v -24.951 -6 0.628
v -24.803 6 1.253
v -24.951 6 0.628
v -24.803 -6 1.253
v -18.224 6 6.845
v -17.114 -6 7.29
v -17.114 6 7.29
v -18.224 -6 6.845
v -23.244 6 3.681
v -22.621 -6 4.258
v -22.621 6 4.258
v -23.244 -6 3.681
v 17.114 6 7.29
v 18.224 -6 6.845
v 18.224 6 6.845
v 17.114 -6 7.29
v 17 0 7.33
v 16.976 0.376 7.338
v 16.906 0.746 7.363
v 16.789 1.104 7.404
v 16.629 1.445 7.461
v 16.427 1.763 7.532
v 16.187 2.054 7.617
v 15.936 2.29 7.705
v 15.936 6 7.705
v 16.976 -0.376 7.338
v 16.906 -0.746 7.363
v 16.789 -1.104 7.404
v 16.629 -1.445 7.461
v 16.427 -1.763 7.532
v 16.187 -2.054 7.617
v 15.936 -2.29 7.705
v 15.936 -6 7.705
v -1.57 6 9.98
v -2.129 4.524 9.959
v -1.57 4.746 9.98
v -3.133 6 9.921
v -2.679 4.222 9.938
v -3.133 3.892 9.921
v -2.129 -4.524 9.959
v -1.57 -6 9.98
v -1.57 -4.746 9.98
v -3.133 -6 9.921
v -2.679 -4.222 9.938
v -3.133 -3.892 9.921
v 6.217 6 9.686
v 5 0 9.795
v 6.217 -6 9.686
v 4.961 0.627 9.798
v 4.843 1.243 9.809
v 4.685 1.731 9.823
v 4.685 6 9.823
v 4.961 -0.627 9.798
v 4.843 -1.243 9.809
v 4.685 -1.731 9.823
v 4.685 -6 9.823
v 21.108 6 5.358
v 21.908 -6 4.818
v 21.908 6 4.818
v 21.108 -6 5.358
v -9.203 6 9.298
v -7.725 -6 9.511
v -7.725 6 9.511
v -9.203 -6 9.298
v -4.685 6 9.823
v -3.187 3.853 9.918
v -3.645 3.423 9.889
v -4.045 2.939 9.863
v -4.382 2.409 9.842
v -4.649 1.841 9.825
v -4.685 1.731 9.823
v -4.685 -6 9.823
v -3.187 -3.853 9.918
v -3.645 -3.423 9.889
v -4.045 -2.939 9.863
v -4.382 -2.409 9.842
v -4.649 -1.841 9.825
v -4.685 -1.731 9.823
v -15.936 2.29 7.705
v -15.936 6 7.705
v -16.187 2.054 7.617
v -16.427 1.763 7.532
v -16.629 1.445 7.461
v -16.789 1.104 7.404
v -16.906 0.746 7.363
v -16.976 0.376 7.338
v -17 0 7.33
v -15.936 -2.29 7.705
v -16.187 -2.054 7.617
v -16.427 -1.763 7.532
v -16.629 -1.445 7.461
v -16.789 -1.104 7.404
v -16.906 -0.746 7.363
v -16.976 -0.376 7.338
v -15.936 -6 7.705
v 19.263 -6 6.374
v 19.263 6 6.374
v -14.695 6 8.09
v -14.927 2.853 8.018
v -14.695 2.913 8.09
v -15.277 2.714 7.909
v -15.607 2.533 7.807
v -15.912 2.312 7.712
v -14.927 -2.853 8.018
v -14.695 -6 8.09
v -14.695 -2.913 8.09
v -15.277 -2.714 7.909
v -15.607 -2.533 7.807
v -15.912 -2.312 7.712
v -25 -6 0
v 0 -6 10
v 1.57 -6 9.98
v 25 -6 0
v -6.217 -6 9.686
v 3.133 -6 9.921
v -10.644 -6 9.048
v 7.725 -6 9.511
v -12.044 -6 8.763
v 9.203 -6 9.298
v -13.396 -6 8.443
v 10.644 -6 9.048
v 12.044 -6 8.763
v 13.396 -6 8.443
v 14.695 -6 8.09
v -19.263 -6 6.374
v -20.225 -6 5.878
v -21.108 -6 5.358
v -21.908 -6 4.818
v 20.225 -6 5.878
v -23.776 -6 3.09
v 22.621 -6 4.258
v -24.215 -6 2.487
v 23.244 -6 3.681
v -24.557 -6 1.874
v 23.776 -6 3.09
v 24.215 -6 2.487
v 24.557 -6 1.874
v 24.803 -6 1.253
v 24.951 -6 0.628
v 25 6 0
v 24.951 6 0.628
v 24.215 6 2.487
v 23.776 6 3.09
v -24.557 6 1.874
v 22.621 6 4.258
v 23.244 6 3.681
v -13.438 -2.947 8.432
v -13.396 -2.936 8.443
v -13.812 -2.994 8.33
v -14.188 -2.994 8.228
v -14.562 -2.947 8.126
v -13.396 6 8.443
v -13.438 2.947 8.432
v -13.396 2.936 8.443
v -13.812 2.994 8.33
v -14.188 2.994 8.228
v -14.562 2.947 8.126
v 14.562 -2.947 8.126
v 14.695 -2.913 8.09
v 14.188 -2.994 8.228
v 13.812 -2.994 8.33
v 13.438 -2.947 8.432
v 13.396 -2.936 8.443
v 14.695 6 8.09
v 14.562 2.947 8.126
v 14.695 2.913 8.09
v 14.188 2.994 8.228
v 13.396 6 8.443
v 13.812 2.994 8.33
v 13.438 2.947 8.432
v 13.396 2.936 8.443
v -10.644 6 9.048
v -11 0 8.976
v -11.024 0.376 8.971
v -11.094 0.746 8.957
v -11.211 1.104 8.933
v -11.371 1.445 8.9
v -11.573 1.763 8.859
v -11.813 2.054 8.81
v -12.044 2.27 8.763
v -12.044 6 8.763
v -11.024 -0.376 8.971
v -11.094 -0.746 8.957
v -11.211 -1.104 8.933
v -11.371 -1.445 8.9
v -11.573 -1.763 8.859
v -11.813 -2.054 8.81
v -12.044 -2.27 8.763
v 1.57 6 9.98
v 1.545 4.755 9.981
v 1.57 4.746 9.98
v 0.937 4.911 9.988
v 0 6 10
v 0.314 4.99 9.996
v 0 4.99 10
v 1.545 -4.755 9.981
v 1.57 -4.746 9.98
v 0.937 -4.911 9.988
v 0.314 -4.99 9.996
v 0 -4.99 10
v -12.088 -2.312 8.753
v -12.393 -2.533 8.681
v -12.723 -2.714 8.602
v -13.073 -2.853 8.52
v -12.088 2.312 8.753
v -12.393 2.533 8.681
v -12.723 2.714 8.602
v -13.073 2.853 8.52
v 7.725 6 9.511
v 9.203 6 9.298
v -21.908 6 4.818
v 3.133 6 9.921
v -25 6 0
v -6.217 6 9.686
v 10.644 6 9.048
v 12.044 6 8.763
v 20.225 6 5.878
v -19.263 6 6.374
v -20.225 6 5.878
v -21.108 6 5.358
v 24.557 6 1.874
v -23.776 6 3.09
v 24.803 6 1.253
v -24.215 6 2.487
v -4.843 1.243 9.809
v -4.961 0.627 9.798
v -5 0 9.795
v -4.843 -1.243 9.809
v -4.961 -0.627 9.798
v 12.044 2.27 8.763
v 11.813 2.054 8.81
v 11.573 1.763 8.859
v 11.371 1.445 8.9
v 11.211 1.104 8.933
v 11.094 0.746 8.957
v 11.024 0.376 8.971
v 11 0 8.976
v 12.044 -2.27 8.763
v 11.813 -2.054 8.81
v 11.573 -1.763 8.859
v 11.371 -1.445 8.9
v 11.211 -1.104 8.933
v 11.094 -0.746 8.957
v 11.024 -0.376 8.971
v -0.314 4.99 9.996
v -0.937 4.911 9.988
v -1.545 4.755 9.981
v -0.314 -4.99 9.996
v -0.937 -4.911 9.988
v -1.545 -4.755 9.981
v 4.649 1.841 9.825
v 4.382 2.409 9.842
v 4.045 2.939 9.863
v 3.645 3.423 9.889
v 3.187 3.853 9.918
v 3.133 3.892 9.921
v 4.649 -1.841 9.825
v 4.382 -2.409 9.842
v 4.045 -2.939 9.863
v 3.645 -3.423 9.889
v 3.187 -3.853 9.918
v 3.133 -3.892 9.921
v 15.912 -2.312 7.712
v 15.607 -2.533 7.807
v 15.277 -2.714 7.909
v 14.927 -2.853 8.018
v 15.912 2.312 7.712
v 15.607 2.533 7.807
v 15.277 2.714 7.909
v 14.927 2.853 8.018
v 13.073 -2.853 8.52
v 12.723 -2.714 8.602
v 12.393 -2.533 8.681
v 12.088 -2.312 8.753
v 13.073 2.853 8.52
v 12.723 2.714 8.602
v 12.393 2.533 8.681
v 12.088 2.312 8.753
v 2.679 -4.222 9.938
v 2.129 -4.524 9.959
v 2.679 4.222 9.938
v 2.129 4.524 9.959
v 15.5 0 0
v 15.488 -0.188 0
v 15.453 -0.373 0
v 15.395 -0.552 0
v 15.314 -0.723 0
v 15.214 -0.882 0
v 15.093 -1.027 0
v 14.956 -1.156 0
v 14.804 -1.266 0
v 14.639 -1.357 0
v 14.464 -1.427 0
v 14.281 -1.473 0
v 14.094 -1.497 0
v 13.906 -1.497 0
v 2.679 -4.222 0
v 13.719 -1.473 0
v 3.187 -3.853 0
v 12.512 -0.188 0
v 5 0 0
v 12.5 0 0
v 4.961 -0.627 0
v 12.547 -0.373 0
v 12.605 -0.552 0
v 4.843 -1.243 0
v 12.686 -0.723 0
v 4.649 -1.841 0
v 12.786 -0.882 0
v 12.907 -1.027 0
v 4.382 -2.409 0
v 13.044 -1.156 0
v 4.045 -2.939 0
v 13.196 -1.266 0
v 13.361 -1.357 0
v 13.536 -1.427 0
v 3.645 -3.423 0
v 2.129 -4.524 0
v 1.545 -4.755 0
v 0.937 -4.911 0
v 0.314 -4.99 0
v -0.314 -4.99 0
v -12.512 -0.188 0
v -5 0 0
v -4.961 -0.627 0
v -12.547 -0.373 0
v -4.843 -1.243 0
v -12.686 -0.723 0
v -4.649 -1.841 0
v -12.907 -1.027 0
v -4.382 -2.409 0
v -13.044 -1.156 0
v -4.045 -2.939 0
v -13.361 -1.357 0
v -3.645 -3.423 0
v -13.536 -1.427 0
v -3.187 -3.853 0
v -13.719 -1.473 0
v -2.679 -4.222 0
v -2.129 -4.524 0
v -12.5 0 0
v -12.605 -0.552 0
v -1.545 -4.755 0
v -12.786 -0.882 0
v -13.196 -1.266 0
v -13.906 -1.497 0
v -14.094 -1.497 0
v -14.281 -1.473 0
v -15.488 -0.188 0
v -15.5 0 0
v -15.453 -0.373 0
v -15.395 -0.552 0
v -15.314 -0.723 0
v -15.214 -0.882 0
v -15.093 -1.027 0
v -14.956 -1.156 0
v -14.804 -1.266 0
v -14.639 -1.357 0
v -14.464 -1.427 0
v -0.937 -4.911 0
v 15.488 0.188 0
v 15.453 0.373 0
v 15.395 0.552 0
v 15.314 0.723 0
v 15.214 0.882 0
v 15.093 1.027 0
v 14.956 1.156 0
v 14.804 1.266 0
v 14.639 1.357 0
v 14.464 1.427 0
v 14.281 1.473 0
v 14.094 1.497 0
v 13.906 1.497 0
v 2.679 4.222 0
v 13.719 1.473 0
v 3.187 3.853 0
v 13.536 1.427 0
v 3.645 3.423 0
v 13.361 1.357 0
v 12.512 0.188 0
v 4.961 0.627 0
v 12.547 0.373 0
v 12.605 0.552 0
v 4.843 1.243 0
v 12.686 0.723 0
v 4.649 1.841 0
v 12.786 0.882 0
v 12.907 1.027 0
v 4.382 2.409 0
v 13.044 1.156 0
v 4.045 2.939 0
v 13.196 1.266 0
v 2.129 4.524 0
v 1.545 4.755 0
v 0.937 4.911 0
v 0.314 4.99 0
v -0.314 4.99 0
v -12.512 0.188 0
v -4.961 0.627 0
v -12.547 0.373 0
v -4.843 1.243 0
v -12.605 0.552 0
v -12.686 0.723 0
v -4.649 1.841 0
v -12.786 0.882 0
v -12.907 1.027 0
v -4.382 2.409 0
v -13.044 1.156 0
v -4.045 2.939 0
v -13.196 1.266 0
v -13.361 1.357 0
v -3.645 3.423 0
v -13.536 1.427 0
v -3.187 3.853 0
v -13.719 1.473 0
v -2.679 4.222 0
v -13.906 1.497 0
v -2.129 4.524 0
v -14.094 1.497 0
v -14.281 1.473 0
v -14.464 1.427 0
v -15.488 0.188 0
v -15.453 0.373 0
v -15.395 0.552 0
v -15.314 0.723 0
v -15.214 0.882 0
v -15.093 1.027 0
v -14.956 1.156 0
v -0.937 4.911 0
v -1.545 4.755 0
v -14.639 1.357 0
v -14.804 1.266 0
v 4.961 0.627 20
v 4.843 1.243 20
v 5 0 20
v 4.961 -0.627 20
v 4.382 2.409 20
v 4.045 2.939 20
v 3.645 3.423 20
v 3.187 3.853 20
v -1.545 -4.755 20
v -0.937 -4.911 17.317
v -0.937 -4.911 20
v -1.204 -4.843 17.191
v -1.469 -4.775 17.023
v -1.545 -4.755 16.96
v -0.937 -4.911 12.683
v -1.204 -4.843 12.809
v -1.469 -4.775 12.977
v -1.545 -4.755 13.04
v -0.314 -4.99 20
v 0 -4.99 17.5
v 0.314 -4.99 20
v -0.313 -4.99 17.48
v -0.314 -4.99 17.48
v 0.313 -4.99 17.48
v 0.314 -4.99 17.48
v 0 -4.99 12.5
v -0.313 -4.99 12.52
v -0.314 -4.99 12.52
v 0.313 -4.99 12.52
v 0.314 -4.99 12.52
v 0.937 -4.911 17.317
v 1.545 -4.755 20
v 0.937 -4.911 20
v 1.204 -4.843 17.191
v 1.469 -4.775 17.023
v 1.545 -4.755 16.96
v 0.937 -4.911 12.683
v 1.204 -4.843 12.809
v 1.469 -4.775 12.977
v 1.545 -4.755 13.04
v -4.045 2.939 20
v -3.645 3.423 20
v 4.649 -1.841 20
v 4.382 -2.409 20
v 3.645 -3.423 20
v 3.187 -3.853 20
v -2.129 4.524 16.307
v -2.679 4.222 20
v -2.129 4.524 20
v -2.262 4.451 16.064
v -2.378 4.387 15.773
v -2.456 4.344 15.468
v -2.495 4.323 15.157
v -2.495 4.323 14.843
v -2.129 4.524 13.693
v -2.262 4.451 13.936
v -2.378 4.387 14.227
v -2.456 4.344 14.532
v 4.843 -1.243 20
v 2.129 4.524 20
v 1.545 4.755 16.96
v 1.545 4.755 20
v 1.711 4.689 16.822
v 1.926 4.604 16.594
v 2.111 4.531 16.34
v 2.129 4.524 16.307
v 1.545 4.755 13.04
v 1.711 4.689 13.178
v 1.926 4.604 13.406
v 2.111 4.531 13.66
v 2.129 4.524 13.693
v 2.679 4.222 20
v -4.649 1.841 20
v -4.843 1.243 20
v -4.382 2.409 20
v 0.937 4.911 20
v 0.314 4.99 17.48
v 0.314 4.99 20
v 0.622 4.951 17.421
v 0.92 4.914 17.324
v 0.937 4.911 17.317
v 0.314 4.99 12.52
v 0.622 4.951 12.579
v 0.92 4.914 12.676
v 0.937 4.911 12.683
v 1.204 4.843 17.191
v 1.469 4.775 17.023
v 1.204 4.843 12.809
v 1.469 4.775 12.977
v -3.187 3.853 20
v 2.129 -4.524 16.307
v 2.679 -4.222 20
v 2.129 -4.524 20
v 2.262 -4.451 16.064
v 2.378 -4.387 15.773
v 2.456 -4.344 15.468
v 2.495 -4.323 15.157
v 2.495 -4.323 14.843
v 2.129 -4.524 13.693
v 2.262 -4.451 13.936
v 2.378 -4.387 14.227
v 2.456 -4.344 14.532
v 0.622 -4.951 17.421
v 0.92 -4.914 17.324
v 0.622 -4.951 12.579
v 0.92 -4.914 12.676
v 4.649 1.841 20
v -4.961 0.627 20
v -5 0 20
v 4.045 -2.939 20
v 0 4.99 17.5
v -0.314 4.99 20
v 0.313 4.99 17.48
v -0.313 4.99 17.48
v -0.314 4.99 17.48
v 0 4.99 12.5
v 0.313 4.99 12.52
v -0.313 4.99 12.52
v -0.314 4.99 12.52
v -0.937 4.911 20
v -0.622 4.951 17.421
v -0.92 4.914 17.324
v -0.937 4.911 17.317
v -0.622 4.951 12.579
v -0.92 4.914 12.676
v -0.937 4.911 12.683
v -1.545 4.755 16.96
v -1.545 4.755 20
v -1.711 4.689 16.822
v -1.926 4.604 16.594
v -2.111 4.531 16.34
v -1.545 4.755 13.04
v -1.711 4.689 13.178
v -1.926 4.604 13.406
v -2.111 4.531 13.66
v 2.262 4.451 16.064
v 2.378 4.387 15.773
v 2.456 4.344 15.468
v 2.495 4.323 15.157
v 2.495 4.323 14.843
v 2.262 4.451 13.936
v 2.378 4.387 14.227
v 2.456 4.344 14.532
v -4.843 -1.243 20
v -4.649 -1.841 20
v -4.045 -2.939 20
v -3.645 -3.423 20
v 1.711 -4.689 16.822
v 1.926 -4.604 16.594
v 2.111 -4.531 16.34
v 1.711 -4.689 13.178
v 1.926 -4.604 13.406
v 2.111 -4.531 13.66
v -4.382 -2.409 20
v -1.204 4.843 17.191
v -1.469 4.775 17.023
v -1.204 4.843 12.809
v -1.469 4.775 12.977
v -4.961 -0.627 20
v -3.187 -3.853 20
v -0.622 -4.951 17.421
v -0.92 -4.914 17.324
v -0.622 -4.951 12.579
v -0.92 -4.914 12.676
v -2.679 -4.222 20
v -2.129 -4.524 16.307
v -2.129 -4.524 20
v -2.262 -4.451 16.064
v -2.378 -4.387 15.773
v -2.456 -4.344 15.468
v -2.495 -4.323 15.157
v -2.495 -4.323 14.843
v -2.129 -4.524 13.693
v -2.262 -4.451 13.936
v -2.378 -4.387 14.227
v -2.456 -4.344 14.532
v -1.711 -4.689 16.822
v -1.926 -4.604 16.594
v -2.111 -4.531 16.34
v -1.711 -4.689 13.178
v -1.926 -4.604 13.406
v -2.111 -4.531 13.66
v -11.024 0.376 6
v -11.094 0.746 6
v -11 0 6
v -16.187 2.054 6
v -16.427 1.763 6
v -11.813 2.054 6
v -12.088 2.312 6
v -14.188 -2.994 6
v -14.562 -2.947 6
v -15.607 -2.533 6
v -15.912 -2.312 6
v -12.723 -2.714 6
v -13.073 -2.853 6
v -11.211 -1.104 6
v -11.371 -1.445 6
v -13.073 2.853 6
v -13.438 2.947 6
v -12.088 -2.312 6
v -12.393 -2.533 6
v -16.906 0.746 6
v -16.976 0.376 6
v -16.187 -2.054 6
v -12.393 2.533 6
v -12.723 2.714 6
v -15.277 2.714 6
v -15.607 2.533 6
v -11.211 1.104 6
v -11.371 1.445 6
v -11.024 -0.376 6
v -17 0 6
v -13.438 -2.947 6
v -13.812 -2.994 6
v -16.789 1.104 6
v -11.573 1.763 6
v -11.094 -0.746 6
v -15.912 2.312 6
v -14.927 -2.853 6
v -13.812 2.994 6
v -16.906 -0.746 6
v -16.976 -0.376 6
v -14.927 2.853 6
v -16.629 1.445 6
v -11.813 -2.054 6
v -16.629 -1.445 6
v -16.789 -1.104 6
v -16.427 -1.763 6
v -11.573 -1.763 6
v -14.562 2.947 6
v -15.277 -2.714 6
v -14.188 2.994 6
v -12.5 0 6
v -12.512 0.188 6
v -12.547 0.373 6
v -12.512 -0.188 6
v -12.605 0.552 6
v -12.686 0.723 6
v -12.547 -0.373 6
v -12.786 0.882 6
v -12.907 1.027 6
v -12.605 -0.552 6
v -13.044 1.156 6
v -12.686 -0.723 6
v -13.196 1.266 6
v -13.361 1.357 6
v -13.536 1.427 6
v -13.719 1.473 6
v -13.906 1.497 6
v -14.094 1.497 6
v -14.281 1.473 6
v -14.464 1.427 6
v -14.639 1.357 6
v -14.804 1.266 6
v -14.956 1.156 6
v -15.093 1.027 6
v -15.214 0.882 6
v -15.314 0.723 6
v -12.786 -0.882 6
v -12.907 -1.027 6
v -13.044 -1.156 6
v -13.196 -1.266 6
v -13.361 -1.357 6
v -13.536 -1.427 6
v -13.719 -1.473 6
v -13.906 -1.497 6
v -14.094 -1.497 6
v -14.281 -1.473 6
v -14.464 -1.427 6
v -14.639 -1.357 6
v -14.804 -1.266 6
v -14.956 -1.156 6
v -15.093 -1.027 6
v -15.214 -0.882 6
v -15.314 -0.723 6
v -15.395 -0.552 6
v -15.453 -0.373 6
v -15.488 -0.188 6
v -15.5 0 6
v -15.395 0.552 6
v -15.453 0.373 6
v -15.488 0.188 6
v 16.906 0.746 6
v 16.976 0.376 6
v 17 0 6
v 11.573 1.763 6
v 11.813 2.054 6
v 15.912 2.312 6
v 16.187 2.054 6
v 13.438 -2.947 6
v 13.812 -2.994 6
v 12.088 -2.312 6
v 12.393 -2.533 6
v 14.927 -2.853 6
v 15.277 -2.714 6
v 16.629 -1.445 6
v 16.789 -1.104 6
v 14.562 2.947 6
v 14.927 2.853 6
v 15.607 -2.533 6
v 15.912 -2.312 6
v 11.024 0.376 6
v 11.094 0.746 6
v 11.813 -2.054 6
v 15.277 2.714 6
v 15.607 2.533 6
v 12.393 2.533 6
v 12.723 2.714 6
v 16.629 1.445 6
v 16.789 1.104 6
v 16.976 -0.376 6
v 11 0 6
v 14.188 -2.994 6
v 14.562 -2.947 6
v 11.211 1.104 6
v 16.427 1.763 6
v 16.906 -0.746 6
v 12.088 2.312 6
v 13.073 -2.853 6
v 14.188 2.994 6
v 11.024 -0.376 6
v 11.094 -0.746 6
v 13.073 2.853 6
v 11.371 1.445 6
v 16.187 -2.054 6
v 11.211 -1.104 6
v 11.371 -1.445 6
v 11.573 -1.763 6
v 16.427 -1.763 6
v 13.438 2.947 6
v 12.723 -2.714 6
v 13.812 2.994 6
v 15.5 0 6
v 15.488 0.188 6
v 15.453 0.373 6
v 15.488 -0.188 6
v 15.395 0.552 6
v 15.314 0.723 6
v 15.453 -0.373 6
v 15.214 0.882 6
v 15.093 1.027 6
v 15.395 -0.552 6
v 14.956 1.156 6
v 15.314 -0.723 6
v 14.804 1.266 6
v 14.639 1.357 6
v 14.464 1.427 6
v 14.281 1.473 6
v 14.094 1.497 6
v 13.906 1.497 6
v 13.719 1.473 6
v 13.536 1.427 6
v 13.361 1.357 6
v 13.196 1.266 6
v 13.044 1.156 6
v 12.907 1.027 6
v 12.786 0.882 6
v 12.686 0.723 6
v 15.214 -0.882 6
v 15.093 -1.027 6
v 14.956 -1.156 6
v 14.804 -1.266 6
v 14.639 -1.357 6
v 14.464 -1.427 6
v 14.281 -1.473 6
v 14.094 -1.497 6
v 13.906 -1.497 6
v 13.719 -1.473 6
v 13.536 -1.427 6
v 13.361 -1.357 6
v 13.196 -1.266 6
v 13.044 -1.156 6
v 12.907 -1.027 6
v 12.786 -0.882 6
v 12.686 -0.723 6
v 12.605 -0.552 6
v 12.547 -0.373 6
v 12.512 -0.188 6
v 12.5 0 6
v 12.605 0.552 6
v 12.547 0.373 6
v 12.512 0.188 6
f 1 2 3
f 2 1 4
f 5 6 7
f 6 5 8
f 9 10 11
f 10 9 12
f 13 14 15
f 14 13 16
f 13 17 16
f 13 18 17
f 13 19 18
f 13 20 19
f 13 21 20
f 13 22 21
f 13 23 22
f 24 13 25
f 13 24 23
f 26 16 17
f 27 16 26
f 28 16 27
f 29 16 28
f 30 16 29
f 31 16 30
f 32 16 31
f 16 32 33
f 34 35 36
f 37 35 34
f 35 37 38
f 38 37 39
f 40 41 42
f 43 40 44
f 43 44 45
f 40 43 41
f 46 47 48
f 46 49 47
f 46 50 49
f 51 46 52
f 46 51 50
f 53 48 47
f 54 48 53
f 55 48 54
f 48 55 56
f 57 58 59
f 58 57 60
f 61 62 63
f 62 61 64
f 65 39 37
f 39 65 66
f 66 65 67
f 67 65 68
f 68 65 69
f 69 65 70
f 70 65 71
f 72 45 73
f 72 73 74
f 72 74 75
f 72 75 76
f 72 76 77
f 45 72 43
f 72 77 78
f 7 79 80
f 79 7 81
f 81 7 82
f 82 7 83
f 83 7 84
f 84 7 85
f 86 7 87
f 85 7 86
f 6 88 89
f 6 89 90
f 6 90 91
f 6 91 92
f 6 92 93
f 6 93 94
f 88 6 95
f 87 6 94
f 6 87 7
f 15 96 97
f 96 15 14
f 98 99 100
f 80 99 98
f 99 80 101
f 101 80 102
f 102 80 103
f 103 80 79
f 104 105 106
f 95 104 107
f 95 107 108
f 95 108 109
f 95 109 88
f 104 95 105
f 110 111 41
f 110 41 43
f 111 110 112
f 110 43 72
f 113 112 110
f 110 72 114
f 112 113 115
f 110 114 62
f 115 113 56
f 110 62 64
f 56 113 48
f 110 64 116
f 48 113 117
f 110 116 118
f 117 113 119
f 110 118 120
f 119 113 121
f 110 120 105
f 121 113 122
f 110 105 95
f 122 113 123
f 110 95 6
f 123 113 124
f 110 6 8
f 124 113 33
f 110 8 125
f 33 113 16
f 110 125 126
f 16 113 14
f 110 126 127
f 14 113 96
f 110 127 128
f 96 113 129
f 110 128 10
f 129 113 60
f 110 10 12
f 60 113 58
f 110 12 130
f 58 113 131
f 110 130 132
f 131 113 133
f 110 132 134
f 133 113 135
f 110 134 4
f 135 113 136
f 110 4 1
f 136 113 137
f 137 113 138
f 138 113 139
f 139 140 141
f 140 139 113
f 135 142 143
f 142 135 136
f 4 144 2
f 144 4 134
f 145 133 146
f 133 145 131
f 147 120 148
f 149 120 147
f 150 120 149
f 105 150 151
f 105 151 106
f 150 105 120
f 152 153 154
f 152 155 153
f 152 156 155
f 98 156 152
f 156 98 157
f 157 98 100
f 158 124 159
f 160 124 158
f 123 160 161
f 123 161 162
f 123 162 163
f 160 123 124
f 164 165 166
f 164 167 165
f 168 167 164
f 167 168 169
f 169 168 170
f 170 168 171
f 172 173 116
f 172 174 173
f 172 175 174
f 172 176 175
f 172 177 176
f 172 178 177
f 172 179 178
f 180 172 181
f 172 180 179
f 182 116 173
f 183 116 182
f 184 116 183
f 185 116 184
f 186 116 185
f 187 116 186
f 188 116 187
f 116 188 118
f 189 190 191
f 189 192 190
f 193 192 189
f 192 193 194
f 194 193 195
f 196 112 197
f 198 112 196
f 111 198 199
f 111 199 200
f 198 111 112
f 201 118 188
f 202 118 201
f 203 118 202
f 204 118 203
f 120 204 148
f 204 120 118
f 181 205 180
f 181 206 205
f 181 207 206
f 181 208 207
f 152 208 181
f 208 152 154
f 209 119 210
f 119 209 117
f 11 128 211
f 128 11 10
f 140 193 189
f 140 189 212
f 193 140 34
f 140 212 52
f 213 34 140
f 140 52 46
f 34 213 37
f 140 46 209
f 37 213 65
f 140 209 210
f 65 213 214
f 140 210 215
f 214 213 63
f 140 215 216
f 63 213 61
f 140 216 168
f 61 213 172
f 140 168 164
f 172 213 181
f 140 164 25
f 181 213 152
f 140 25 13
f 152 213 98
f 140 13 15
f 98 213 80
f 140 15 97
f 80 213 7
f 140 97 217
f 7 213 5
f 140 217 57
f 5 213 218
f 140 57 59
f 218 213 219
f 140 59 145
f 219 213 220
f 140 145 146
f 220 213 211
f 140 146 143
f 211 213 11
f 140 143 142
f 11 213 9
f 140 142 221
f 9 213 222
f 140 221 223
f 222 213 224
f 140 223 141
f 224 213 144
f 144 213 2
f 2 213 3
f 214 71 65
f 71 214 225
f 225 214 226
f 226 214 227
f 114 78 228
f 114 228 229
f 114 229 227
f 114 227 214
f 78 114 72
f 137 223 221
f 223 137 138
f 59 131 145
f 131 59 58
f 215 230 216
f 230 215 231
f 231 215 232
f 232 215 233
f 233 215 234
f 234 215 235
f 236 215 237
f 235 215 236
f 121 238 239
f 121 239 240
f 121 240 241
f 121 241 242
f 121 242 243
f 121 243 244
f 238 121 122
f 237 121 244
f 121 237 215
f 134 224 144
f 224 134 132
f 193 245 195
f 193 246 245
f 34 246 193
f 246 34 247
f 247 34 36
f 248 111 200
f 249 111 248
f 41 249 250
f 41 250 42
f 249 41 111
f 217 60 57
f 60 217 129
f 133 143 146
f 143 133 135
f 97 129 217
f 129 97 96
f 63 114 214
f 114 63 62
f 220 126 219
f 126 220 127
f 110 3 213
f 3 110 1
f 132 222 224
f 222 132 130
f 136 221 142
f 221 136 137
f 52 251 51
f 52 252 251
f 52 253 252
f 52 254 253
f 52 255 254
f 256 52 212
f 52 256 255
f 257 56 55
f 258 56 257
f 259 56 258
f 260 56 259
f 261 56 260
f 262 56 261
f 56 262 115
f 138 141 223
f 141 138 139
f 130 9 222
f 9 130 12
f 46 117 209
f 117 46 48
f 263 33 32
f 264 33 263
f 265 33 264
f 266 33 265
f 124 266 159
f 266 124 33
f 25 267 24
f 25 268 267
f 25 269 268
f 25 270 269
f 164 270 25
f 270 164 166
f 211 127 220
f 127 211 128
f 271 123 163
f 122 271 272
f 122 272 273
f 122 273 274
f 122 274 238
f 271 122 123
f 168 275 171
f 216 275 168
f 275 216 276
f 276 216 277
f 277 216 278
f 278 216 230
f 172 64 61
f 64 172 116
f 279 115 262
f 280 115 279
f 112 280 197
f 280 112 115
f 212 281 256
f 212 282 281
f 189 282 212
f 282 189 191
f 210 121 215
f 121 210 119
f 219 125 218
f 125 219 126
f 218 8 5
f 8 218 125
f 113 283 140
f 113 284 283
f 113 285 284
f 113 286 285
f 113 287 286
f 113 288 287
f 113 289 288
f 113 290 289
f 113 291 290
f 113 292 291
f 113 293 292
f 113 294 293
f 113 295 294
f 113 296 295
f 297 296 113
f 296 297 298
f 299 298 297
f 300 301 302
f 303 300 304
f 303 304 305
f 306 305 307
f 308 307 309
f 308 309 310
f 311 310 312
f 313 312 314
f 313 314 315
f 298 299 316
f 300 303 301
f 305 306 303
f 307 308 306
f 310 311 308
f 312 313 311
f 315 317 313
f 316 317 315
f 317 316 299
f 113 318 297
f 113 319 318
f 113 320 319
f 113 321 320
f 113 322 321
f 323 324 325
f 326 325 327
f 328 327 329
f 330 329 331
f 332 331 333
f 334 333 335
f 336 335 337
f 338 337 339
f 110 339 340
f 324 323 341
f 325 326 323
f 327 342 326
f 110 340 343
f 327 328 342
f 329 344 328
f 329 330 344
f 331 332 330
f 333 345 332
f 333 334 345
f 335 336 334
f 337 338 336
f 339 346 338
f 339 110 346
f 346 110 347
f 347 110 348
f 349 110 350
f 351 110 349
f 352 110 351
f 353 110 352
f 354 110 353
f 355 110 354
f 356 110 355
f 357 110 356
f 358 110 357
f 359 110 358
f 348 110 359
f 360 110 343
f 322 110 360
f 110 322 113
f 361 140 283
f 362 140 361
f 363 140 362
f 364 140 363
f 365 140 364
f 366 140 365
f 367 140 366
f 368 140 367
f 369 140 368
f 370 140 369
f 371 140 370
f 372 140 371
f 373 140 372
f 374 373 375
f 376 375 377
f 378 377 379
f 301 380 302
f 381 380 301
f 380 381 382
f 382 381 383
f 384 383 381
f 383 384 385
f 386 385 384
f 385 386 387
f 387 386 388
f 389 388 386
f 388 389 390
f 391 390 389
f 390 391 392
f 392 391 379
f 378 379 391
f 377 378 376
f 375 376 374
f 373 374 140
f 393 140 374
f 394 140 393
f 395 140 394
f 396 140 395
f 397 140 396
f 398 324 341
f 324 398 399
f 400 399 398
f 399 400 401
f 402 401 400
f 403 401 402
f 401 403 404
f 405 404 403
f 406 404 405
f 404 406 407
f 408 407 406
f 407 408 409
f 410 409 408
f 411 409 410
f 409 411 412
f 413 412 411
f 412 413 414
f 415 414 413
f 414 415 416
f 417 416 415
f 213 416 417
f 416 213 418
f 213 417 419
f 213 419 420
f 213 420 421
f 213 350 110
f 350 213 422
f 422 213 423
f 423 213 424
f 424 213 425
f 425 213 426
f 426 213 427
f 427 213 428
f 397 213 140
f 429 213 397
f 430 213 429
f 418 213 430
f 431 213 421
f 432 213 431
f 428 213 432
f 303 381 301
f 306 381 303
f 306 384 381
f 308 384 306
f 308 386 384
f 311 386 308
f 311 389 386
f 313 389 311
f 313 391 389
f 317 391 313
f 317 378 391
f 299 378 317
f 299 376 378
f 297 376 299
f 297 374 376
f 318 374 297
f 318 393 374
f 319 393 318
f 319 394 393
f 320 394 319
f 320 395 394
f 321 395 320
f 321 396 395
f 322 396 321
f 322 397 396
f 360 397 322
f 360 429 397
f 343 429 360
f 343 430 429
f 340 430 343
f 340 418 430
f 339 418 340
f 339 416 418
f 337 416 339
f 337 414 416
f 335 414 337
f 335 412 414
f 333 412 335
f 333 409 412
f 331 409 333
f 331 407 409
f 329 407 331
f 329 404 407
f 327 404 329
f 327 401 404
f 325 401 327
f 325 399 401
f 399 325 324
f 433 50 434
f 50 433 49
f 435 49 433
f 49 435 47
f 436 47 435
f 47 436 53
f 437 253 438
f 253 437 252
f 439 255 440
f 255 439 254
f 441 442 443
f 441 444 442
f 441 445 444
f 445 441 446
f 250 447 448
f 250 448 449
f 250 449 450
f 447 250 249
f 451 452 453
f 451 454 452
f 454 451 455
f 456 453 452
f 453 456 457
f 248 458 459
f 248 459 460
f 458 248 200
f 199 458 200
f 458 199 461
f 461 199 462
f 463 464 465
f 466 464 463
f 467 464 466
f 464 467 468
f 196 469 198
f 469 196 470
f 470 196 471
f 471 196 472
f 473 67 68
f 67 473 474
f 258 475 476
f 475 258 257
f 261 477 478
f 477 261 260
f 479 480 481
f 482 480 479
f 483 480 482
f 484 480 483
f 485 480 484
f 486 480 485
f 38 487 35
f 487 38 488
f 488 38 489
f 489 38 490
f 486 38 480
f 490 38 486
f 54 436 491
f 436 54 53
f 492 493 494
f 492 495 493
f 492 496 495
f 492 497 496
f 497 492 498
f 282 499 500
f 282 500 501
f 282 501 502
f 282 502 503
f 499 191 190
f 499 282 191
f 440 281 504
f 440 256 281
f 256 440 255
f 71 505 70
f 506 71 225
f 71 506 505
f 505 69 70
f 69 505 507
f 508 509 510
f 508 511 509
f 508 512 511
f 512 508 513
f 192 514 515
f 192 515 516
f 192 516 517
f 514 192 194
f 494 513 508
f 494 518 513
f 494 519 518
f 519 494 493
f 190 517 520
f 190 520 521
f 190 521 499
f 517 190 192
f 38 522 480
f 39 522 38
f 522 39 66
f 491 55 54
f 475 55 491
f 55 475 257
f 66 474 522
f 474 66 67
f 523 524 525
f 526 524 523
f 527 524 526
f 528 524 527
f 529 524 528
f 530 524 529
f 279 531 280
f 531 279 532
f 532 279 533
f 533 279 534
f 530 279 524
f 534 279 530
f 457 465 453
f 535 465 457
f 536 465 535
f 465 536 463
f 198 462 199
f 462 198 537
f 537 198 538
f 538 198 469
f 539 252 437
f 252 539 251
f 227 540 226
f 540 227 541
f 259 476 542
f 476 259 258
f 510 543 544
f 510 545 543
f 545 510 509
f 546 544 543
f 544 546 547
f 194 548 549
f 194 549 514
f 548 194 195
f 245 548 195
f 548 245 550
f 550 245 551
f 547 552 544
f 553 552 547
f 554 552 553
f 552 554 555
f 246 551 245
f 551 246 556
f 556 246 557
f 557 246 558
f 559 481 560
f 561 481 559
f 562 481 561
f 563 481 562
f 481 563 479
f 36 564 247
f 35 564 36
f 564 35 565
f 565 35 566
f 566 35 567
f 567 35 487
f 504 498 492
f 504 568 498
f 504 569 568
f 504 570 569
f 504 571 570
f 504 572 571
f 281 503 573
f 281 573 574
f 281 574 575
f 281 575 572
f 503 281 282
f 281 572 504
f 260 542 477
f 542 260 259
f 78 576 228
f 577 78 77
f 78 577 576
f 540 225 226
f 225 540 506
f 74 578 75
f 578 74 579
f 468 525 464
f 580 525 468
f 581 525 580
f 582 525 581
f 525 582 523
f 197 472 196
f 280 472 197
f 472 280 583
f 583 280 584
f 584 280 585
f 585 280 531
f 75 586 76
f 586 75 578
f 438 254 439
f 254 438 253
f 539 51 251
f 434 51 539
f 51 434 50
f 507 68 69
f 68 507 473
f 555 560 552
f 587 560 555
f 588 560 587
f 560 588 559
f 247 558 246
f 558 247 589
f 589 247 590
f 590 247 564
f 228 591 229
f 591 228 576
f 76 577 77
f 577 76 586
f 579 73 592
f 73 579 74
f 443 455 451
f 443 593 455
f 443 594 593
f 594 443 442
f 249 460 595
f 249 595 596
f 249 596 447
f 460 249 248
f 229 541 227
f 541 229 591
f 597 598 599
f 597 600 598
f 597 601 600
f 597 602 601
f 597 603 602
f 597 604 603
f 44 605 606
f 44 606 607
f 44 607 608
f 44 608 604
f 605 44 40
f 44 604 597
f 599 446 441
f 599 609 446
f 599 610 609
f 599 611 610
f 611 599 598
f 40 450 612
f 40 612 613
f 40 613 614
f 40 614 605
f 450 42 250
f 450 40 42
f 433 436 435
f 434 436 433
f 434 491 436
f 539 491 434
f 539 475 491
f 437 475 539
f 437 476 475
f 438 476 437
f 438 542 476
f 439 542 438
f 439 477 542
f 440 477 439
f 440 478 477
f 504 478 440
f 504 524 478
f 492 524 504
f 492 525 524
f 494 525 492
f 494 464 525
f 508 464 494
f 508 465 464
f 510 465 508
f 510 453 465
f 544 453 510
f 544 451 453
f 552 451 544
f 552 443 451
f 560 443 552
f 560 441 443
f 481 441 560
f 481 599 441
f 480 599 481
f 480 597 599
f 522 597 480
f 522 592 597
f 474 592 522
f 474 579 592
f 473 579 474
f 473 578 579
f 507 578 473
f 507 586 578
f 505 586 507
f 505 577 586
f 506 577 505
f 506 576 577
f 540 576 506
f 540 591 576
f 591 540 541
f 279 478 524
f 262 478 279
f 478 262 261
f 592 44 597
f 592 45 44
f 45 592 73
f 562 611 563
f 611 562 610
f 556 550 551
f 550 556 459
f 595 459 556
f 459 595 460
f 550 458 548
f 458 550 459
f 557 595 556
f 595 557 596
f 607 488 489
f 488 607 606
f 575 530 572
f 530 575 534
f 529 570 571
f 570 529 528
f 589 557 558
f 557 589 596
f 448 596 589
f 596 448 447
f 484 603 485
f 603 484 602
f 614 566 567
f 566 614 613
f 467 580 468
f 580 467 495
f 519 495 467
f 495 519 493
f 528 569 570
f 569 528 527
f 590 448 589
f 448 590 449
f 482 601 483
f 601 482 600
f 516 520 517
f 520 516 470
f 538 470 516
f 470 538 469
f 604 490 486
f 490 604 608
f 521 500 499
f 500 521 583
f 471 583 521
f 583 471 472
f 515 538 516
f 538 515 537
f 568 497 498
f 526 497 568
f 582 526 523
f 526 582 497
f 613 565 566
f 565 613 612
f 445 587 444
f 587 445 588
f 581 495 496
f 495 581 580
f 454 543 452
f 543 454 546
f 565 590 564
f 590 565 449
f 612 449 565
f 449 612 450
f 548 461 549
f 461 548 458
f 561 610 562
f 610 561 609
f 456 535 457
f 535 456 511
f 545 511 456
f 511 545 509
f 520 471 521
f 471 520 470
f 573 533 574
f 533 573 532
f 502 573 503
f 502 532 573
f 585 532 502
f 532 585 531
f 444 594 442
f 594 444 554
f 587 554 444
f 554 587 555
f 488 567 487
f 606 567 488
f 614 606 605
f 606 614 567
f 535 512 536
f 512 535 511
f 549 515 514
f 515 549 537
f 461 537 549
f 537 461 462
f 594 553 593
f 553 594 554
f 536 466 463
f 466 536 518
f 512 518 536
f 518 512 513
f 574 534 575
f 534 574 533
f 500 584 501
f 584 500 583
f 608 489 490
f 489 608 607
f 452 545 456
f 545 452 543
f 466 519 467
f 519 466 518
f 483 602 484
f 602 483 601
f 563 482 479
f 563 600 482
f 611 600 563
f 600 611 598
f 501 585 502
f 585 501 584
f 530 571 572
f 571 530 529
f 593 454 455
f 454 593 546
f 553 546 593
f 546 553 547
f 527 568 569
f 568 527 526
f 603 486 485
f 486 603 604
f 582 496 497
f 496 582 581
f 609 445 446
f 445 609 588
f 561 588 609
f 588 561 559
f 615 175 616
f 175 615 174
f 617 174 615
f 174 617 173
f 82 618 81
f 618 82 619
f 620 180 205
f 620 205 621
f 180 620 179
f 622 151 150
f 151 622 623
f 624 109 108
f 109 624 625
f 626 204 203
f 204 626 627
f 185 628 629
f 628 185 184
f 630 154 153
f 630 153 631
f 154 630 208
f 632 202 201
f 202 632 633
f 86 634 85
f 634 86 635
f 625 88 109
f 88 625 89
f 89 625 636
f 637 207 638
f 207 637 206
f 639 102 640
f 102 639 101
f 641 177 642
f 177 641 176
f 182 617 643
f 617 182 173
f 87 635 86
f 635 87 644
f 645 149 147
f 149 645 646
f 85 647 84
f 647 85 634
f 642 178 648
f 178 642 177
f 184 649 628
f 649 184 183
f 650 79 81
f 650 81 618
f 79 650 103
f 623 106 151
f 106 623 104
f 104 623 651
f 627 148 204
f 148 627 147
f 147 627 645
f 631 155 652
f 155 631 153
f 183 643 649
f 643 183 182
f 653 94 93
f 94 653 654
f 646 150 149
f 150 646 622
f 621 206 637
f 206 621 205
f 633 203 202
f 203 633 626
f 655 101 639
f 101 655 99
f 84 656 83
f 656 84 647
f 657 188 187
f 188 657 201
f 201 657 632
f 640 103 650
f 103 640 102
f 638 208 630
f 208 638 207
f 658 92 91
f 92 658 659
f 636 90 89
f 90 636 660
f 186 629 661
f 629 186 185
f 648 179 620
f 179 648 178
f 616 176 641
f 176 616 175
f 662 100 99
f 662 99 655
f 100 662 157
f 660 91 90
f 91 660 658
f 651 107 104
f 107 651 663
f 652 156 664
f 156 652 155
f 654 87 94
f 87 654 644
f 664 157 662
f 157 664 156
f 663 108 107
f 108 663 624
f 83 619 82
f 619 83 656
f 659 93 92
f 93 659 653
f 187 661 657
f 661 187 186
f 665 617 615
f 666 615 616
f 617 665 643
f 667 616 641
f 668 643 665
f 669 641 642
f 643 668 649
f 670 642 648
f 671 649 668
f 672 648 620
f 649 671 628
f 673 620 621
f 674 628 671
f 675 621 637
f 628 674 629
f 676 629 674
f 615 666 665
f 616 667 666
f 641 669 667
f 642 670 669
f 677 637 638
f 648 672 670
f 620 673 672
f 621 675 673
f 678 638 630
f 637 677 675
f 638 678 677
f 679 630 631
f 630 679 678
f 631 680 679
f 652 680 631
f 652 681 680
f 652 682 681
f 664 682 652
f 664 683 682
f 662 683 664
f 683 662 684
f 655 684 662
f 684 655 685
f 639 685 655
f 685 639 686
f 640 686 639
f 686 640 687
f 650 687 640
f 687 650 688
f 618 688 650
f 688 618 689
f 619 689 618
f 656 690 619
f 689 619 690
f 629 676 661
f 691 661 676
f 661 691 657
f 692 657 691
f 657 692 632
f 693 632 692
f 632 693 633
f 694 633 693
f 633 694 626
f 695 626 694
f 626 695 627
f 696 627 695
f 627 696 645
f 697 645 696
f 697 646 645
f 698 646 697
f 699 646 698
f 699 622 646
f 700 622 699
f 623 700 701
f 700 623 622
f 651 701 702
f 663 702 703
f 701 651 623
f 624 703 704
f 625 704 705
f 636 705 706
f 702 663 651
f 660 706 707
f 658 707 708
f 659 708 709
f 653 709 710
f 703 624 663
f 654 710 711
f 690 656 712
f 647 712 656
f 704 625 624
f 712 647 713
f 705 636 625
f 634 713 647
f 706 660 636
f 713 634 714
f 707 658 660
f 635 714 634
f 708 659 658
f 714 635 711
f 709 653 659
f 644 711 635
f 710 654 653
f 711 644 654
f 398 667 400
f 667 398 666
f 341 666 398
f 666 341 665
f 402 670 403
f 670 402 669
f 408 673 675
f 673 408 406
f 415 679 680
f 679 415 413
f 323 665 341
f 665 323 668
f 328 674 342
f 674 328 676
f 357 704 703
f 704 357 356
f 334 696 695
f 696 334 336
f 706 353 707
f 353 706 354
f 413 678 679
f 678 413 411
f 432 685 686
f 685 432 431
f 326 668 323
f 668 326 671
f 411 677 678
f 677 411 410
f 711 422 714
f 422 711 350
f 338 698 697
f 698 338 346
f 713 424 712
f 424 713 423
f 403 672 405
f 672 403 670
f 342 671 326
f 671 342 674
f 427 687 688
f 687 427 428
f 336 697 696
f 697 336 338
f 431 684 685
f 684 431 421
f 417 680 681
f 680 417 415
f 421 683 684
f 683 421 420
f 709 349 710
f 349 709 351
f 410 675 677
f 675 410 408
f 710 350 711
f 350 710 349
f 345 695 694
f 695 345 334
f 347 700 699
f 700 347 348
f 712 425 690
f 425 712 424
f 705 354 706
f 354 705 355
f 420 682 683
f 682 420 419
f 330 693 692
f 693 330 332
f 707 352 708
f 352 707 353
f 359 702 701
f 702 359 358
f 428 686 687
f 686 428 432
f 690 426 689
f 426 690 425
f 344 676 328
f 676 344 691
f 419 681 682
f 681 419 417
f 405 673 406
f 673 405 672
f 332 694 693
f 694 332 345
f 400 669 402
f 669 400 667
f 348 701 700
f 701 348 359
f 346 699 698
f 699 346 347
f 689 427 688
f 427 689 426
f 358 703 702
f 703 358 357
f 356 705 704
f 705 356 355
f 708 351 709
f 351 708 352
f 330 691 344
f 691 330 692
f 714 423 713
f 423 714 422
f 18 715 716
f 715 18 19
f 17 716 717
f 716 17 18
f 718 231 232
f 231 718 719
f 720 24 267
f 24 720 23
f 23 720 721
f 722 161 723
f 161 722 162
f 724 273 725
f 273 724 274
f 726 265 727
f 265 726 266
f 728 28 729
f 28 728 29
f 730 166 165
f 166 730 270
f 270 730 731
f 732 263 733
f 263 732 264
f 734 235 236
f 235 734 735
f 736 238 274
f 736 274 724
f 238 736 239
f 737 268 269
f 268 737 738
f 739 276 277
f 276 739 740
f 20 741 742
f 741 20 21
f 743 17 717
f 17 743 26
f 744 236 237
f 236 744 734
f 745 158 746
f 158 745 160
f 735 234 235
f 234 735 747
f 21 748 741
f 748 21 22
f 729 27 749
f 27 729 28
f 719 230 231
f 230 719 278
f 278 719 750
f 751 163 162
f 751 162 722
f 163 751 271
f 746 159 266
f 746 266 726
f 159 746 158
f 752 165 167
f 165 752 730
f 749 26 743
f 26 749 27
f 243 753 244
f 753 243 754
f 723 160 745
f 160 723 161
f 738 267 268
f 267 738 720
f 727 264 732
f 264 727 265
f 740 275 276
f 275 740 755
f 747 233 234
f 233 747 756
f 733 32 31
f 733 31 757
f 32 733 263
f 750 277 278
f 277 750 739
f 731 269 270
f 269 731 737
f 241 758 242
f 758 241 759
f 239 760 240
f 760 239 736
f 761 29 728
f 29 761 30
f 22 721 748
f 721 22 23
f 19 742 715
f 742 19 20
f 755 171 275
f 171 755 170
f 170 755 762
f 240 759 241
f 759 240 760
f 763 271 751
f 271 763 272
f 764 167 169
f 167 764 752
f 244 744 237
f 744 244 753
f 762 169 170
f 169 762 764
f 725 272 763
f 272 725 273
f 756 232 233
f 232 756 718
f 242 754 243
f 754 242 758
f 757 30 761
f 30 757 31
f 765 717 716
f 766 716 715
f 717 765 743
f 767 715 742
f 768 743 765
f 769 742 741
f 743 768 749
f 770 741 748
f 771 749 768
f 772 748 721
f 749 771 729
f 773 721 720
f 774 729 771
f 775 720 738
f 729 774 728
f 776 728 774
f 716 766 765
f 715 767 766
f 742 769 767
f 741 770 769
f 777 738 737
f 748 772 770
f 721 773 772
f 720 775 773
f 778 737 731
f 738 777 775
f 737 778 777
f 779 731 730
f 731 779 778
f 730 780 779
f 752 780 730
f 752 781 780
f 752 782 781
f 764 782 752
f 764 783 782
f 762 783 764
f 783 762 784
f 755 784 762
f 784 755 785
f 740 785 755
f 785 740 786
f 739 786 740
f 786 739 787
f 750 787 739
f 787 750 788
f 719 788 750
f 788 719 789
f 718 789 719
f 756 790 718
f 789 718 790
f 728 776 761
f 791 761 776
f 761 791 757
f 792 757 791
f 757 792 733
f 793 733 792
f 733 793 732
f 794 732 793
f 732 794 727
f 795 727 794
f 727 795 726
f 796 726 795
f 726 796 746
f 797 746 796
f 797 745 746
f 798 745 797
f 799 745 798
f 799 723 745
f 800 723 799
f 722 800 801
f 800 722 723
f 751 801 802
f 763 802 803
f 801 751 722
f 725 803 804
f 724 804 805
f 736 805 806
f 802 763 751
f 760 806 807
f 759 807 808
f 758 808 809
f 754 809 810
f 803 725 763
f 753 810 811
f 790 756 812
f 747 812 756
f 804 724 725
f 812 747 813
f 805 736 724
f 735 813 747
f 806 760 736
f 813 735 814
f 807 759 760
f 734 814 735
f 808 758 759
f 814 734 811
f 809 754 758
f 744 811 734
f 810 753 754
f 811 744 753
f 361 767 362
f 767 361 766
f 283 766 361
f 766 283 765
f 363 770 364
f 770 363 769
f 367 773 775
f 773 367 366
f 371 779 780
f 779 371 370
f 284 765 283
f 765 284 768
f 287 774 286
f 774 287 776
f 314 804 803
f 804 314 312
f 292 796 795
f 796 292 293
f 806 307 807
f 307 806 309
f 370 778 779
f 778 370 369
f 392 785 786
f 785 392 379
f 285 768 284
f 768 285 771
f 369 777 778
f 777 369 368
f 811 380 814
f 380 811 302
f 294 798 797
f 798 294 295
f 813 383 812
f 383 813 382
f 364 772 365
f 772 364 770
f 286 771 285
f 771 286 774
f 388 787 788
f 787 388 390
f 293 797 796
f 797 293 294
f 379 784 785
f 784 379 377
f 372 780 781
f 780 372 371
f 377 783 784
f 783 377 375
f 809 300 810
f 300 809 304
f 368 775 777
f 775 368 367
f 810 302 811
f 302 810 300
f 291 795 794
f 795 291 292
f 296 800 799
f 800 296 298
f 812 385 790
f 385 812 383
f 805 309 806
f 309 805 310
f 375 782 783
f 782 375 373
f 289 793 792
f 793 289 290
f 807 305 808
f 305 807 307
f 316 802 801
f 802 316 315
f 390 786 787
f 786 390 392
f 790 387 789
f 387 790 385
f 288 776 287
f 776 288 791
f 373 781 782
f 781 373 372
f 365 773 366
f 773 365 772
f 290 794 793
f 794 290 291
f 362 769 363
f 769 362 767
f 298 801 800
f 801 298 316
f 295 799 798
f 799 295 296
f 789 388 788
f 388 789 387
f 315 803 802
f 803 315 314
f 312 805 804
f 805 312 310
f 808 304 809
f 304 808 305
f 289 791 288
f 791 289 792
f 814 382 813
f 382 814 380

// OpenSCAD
use <../../mechanical.parts.scad>

// Will use metalScrewCyl to fix it.

screwDiam = 3.0;
headDiam = 6.0;
screwLength = 30;


difference() {

  // The base
  union() {

    // Main
    difference() {
      rotate([90, 90, 0]) {
        resize([20, 50, 12]) {
          cylinder(h=24, r=50, center=true, $fn=100);
        }
      }
      
      translate([0, 0, -5]) {
        rotate([0, 0, 0]) {
          cube([55, 20, 10], center=true);
        }
      }
    }

    // Cylinder on top
    difference() {
      // Main
      translate([0, 0, 0]) {
        rotate([0, 0, 0]) {
          cylinder(h=20, r=5, $fn=50);
        }
      }
      // The hole
      translate([0, 0, 15]) {
        rotate([0, 90, 90]) {
          cylinder(h=30, r=2.5, center=true, $fn=50);
        }
      }
      
    }
  }

  // The screws
  rotate([0, 0, 0]) {
    translate([-14, 0, -21]) {
      metalScrewCyl(screwDiam, headDiam, screwLength, top=10);
    }
  }
  rotate([0, 0, 0]) {
    translate([14, 0, -21]) {
      metalScrewCyl(screwDiam, headDiam, screwLength, top=10);
    }
  }
}
